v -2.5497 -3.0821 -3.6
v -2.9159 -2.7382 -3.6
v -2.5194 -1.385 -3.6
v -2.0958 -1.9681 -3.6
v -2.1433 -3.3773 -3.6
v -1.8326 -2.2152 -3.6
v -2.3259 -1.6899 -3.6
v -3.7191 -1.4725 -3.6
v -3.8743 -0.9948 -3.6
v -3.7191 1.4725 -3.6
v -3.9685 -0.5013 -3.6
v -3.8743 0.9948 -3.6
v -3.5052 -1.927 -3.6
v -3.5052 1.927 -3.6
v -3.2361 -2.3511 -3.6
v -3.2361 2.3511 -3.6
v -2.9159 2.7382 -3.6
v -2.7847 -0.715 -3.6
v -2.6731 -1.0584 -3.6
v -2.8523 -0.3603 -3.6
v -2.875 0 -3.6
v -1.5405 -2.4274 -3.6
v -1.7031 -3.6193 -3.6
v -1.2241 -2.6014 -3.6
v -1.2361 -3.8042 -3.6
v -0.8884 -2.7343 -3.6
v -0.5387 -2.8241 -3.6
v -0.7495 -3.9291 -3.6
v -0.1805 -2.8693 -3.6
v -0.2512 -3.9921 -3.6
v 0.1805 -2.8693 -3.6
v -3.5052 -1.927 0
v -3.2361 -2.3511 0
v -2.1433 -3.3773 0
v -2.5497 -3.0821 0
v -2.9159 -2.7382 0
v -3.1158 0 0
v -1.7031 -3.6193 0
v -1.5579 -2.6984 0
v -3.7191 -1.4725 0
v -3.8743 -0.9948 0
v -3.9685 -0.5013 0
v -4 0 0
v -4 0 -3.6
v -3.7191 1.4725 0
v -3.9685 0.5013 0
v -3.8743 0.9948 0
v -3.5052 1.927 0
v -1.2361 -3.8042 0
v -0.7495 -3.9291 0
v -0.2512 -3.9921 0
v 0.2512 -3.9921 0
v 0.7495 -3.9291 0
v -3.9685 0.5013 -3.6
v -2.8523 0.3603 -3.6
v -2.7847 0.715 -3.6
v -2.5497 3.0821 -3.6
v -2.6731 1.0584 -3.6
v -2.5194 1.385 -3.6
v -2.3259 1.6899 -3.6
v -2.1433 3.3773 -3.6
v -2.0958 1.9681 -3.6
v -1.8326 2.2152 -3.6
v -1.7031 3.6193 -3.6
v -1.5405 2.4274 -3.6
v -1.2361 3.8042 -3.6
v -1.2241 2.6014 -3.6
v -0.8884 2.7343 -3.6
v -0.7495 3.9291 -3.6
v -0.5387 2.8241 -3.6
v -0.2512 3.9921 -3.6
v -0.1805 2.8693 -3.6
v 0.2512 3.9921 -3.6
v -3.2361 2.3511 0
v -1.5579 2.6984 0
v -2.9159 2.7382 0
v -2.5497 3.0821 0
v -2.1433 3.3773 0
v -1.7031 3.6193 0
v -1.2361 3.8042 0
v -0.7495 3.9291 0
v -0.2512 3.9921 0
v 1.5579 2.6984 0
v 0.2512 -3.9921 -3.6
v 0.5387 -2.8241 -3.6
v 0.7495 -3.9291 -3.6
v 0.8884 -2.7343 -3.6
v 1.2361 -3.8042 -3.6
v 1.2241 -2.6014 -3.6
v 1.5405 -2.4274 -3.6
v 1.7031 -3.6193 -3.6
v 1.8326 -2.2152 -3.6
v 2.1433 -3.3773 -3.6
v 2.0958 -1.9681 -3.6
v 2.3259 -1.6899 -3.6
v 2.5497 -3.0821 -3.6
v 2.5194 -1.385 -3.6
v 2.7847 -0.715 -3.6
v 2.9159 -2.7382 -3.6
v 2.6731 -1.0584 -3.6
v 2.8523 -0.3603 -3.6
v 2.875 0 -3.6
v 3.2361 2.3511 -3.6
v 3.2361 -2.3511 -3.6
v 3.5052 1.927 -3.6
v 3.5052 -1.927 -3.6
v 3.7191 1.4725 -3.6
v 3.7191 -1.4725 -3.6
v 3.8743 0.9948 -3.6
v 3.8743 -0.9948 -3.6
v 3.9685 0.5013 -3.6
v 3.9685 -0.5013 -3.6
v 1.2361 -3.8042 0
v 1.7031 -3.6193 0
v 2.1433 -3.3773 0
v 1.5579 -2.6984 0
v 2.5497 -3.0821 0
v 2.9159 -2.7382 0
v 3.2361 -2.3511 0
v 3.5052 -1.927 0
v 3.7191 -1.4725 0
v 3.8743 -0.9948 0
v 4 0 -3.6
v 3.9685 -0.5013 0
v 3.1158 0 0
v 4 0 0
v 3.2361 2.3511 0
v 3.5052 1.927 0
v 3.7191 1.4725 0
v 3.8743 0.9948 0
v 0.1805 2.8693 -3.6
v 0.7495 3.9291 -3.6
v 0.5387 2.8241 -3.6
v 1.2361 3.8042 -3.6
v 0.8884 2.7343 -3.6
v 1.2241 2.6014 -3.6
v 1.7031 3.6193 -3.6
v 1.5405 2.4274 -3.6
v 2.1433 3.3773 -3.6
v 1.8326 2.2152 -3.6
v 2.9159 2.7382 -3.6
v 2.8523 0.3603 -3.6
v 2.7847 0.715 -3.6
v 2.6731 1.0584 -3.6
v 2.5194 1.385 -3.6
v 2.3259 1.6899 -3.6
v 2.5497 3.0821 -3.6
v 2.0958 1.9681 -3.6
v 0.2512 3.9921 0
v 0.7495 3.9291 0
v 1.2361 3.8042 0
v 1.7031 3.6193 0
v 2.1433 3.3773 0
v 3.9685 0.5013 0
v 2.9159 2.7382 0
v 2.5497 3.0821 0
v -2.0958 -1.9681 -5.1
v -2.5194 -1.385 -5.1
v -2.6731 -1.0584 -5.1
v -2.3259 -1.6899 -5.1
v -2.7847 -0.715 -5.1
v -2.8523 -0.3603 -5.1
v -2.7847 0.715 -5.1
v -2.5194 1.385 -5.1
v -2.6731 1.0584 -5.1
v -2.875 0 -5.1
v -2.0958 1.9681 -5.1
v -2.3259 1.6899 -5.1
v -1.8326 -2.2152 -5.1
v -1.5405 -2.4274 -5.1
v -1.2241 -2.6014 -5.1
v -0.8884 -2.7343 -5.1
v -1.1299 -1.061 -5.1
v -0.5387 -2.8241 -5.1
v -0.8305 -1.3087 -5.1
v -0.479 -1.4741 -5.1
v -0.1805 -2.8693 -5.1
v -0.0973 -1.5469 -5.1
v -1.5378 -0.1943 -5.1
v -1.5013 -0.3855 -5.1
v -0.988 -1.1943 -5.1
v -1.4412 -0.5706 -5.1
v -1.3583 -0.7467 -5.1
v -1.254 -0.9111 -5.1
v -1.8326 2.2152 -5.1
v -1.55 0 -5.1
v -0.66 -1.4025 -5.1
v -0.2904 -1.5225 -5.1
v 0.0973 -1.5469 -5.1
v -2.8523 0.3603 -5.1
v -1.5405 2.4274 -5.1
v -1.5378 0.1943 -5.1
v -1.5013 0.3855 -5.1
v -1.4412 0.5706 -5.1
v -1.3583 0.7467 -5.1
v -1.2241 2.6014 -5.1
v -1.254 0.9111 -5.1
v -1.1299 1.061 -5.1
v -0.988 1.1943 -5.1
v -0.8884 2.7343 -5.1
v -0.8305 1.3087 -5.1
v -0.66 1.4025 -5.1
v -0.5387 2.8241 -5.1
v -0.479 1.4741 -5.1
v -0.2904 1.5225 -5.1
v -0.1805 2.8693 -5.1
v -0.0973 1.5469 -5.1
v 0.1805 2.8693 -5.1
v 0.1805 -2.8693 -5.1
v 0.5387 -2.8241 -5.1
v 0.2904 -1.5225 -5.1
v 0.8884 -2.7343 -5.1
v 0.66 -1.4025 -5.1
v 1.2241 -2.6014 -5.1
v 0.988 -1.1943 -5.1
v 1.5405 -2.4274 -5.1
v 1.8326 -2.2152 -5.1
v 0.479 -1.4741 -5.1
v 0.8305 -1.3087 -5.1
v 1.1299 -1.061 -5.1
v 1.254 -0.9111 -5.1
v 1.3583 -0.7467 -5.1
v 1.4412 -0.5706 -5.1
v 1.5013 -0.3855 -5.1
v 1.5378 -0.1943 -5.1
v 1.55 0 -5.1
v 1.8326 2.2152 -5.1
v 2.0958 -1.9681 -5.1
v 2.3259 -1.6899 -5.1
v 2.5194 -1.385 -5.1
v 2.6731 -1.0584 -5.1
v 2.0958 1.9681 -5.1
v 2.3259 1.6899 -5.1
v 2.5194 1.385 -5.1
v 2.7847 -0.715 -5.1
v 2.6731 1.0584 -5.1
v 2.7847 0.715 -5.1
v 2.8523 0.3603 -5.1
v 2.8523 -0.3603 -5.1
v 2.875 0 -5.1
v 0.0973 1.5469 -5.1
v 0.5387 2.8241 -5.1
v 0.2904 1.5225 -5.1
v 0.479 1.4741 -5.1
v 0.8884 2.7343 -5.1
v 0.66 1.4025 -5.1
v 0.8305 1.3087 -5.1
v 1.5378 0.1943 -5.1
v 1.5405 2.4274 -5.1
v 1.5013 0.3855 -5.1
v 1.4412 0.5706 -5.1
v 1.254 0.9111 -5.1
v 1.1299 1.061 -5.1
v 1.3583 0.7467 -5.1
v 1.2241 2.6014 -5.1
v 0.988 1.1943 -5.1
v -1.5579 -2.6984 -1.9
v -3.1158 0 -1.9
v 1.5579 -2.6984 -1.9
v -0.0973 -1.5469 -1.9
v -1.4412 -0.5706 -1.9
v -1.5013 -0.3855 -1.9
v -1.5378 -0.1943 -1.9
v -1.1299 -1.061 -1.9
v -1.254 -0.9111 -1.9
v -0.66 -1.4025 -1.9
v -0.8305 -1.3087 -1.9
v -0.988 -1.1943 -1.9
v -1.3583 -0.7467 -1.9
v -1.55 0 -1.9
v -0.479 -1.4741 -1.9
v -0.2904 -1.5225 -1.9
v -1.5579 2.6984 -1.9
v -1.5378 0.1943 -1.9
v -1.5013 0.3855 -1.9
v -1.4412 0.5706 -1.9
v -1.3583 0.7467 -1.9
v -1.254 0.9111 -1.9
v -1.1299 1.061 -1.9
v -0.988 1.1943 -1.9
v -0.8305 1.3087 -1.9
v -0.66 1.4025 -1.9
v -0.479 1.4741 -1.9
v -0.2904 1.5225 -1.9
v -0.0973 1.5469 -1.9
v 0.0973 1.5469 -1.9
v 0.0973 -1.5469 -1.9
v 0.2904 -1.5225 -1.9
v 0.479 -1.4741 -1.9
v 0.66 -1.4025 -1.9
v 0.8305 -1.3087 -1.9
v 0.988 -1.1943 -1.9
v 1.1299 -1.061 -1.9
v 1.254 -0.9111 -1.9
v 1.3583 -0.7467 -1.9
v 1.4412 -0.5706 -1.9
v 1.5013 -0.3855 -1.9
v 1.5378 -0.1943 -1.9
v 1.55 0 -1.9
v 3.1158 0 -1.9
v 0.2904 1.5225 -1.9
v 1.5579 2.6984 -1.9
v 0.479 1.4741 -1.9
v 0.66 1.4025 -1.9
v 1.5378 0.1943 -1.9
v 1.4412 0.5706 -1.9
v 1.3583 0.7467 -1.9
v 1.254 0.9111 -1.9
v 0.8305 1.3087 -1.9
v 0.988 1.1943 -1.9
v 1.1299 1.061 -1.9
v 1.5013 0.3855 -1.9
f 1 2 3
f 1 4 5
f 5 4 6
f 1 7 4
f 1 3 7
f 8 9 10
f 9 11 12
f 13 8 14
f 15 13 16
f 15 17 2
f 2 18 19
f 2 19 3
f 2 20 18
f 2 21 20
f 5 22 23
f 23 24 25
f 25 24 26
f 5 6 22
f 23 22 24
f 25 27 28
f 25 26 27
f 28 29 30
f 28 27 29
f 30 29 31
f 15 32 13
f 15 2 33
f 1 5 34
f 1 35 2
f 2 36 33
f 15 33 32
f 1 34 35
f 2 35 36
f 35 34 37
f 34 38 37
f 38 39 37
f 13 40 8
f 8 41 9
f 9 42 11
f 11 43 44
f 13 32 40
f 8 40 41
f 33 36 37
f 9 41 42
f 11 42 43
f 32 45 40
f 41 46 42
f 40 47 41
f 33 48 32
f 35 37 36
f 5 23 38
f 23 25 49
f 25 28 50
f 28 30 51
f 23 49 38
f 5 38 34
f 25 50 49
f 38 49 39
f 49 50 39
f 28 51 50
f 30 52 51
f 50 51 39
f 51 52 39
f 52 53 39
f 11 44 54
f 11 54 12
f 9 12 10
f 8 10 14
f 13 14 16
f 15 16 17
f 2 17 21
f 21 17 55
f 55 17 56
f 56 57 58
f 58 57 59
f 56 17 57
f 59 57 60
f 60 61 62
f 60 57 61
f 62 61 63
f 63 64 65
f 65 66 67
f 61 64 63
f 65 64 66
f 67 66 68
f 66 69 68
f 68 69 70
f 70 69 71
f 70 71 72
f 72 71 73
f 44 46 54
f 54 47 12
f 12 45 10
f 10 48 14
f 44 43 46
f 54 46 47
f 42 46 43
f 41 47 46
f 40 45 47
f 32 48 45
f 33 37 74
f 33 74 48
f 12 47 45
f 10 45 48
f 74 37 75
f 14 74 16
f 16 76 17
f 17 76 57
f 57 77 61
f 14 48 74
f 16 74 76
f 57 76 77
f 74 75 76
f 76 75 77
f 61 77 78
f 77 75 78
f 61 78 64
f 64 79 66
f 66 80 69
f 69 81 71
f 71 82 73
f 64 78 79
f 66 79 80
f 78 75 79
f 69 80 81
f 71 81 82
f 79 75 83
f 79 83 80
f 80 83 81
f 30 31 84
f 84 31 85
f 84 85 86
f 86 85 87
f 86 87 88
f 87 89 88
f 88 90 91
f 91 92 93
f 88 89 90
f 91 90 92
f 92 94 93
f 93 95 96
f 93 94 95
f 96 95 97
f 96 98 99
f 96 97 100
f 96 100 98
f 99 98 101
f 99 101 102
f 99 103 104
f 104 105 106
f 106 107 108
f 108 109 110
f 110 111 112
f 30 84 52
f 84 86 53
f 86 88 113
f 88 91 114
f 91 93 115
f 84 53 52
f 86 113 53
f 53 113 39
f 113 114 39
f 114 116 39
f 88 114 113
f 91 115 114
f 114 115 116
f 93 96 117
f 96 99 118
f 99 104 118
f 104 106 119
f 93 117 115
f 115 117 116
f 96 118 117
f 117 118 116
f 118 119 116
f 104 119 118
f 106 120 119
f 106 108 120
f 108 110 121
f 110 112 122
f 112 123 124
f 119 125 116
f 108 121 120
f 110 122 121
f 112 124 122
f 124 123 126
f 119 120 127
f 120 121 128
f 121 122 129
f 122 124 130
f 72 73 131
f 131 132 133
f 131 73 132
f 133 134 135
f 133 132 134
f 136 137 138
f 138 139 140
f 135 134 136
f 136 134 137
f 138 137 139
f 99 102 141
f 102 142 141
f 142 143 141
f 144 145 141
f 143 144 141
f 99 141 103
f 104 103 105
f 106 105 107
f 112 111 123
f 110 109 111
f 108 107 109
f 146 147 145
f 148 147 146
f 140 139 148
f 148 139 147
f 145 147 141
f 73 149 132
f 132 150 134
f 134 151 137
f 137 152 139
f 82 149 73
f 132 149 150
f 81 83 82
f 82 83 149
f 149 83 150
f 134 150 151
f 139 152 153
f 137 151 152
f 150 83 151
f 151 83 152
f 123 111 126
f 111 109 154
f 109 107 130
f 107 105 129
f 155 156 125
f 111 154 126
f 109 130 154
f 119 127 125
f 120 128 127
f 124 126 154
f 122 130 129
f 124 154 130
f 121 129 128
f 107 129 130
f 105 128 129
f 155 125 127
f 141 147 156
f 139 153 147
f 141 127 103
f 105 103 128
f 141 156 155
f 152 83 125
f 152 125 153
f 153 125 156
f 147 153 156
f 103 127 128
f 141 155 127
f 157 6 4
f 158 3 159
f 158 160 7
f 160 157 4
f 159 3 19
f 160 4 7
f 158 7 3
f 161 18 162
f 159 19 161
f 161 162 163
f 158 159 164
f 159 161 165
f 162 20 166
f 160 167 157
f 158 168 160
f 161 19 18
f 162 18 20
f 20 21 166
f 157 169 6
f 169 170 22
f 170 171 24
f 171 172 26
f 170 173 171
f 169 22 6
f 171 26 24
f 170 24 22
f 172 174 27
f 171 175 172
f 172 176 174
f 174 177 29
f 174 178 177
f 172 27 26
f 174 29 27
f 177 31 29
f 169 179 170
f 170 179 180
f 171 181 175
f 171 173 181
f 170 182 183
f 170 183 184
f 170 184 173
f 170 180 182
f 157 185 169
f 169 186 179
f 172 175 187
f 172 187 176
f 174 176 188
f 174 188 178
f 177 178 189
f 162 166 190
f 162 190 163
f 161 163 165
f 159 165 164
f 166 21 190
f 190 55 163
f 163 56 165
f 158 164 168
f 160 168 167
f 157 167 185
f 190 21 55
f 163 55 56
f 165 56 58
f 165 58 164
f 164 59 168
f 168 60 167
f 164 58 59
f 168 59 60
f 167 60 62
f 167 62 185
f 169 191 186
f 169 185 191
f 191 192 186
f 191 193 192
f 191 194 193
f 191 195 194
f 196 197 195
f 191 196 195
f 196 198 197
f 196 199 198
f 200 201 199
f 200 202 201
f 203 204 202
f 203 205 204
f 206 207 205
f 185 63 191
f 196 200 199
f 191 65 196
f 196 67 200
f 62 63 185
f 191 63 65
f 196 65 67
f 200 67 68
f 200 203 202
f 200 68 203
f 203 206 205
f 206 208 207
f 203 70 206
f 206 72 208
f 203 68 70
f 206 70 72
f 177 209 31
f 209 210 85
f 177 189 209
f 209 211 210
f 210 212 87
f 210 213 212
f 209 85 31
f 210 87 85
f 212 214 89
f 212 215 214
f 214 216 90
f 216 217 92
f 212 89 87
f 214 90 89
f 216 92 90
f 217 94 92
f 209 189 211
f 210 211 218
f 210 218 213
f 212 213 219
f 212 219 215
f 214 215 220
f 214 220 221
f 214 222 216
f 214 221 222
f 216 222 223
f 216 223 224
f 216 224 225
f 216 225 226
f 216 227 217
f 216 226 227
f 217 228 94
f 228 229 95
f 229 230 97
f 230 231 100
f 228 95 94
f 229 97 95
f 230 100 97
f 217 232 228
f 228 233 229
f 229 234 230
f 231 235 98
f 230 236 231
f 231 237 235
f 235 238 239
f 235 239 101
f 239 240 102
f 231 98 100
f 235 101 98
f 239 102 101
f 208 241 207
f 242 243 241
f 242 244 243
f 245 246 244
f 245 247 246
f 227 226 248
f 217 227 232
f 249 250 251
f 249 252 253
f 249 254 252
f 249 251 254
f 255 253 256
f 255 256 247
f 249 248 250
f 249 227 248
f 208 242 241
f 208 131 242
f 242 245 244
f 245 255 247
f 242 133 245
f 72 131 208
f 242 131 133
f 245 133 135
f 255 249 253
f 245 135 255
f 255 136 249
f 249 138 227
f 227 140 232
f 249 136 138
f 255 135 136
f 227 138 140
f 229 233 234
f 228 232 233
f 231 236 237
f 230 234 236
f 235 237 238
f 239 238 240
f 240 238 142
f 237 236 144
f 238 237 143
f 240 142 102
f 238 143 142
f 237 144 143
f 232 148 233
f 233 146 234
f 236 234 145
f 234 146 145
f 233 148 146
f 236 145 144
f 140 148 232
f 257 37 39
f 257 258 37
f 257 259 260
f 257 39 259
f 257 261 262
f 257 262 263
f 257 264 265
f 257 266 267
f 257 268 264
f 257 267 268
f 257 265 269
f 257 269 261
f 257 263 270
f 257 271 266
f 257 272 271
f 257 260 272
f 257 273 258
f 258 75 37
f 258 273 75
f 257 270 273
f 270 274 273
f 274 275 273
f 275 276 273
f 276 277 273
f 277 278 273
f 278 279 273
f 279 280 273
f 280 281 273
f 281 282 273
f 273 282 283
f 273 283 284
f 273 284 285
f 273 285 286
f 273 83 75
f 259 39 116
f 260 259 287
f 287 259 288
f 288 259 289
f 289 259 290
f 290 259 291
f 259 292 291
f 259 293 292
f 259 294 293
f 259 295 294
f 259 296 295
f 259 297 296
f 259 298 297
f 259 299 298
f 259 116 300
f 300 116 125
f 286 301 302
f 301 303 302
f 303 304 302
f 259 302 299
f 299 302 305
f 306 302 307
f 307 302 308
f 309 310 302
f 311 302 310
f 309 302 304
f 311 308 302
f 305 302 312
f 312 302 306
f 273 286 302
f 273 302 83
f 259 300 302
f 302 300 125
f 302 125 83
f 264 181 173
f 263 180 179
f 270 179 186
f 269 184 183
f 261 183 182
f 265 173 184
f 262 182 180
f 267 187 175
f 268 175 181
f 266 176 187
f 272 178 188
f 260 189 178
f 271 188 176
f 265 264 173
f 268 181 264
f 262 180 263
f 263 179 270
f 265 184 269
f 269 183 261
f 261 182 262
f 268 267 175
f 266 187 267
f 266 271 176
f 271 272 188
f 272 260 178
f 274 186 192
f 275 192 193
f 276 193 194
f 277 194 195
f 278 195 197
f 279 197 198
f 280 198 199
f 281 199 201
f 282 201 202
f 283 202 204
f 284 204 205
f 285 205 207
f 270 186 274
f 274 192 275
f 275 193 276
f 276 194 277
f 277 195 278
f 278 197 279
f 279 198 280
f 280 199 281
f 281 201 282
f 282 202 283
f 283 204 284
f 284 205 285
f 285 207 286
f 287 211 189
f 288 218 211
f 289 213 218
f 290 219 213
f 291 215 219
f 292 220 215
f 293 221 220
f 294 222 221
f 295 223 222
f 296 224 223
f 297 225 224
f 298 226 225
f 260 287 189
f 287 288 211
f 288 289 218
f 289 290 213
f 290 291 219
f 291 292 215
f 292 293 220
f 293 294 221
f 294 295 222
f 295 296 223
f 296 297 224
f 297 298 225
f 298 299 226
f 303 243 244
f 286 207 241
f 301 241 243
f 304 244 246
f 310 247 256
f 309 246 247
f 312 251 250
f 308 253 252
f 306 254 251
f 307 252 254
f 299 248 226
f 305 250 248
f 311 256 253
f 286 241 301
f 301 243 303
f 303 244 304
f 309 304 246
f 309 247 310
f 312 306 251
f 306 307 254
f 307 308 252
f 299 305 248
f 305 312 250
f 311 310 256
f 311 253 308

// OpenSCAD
$fn = 50;

difference() {
	union() {
		translate(v = [0, 0, -3.6]) {
			cylinder(h = 3.6, r = 4.0);
		}
		#translate(v = [0, 0, -5.1]) {
			cylinder(h = 5.1, r = 2.875);
		}
	}
	union() {
		translate(v = [0, 0, 0]) {
			rotate(a = [0, 0, 0]) {
				difference() {
					union() {
						translate(v = [0, 0, -1.9]) {
							linear_extrude(height = 1.9) {
								polygon(points = [[3.1158, 0.0], [1.5579000000000005, 2.698361953111554], [-1.5578999999999994, 2.6983619531115544], [-3.1158, 3.815754496783323e-16], [-1.5579000000000014, -2.6983619531115535], [1.557899999999998, -2.6983619531115552]]);
							}
						}
					}
					union();
				}
			}
		}
		#translate(v = [0, 0, -100.0]) {
			cylinder(h = 200, r = 1.55);
		}
	}
}
